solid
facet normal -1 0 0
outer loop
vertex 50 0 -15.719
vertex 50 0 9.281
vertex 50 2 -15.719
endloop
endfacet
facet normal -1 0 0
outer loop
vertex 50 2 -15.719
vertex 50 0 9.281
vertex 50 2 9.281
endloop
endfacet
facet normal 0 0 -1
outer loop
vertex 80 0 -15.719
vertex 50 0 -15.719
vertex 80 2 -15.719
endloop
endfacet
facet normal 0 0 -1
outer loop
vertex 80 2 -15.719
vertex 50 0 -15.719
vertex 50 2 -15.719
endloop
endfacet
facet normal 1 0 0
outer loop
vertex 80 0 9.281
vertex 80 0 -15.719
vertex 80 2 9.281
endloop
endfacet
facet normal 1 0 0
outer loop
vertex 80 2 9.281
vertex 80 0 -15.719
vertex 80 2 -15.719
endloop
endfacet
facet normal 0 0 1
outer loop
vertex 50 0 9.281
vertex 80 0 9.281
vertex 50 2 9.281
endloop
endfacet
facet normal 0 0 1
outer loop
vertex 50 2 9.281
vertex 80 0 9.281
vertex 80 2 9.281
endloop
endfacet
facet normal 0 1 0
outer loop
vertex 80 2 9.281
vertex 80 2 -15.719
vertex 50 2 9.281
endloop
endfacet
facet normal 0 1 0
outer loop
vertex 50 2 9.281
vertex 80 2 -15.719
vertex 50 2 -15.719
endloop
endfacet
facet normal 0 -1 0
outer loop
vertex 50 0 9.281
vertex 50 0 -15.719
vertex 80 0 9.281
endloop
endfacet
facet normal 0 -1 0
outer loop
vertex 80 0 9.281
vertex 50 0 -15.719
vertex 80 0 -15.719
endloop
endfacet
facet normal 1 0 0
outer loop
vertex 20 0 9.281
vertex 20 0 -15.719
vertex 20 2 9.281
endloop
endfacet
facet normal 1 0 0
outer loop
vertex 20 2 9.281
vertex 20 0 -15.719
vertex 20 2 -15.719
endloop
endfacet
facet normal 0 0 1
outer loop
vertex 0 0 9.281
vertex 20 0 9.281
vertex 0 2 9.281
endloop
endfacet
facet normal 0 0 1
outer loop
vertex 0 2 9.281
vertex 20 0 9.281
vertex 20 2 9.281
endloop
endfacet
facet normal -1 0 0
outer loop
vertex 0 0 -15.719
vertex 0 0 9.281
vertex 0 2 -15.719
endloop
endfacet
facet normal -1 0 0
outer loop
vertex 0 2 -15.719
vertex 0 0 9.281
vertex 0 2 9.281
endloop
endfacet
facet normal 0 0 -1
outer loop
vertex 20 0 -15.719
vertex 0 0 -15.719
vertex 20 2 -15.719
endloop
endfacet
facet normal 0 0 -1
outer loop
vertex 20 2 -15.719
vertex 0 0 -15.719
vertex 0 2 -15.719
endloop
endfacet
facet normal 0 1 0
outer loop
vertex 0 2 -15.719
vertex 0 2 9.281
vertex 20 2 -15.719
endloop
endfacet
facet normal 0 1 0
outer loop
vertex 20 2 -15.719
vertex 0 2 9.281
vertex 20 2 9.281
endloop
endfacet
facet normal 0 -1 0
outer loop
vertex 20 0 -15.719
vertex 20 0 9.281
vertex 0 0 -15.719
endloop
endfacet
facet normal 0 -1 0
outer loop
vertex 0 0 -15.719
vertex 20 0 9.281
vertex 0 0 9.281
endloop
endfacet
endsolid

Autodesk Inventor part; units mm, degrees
ref_plane "YZ Plane" through (0, 0, 0) normal (1, 0, 0) x (0, 1, 0)
ref_plane "XZ Plane" through (0, 0, 0) normal (0, 1, 0) x (-1, 0, 0)
ref_plane "XY Plane" through (0, 0, 0) normal (0, 0, 1) x (1, 0, 0)
sketch "Náčrt1" plane through (0, 0, 0) normal (0, 1, 0) x (-1, 0, 0)
  line L0 (0, -21.3939) -> (0, 14.3929) projected
  line L1 (-96, 0) -> (16, 0) projected
  line L2 (0, 9.2805) -> (-80, 9.2805)
  line L3 (-80, 9.2805) -> (-80, -15.7195)
  line L4 (-80, -15.7195) -> (0, -15.7195)
  line L5 (0, -15.7195) -> (0, 9.2805)
  line L6 (-20, 9.2805) -> (-20, -15.7195)
  line L7 (-50, 9.2805) -> (-50, -16.2815)
  point P0 (0, 0)
  point P1 (-50, -15.7195)
  point P2 (0, -15.7195)
  dimension "d0" = 25
  dimension "d1" = 80
  dimension "d2" = 20
  dimension "d3" = 30
extrude "Vysunutí1" add sketch "Náčrt1" along normal blind 2 contours L4 L6 L1 L0 | L1 L6 L2 L0 | L4 L3 L1 L7 | L1 L3 L2 L7
properties part number "Krytka"
